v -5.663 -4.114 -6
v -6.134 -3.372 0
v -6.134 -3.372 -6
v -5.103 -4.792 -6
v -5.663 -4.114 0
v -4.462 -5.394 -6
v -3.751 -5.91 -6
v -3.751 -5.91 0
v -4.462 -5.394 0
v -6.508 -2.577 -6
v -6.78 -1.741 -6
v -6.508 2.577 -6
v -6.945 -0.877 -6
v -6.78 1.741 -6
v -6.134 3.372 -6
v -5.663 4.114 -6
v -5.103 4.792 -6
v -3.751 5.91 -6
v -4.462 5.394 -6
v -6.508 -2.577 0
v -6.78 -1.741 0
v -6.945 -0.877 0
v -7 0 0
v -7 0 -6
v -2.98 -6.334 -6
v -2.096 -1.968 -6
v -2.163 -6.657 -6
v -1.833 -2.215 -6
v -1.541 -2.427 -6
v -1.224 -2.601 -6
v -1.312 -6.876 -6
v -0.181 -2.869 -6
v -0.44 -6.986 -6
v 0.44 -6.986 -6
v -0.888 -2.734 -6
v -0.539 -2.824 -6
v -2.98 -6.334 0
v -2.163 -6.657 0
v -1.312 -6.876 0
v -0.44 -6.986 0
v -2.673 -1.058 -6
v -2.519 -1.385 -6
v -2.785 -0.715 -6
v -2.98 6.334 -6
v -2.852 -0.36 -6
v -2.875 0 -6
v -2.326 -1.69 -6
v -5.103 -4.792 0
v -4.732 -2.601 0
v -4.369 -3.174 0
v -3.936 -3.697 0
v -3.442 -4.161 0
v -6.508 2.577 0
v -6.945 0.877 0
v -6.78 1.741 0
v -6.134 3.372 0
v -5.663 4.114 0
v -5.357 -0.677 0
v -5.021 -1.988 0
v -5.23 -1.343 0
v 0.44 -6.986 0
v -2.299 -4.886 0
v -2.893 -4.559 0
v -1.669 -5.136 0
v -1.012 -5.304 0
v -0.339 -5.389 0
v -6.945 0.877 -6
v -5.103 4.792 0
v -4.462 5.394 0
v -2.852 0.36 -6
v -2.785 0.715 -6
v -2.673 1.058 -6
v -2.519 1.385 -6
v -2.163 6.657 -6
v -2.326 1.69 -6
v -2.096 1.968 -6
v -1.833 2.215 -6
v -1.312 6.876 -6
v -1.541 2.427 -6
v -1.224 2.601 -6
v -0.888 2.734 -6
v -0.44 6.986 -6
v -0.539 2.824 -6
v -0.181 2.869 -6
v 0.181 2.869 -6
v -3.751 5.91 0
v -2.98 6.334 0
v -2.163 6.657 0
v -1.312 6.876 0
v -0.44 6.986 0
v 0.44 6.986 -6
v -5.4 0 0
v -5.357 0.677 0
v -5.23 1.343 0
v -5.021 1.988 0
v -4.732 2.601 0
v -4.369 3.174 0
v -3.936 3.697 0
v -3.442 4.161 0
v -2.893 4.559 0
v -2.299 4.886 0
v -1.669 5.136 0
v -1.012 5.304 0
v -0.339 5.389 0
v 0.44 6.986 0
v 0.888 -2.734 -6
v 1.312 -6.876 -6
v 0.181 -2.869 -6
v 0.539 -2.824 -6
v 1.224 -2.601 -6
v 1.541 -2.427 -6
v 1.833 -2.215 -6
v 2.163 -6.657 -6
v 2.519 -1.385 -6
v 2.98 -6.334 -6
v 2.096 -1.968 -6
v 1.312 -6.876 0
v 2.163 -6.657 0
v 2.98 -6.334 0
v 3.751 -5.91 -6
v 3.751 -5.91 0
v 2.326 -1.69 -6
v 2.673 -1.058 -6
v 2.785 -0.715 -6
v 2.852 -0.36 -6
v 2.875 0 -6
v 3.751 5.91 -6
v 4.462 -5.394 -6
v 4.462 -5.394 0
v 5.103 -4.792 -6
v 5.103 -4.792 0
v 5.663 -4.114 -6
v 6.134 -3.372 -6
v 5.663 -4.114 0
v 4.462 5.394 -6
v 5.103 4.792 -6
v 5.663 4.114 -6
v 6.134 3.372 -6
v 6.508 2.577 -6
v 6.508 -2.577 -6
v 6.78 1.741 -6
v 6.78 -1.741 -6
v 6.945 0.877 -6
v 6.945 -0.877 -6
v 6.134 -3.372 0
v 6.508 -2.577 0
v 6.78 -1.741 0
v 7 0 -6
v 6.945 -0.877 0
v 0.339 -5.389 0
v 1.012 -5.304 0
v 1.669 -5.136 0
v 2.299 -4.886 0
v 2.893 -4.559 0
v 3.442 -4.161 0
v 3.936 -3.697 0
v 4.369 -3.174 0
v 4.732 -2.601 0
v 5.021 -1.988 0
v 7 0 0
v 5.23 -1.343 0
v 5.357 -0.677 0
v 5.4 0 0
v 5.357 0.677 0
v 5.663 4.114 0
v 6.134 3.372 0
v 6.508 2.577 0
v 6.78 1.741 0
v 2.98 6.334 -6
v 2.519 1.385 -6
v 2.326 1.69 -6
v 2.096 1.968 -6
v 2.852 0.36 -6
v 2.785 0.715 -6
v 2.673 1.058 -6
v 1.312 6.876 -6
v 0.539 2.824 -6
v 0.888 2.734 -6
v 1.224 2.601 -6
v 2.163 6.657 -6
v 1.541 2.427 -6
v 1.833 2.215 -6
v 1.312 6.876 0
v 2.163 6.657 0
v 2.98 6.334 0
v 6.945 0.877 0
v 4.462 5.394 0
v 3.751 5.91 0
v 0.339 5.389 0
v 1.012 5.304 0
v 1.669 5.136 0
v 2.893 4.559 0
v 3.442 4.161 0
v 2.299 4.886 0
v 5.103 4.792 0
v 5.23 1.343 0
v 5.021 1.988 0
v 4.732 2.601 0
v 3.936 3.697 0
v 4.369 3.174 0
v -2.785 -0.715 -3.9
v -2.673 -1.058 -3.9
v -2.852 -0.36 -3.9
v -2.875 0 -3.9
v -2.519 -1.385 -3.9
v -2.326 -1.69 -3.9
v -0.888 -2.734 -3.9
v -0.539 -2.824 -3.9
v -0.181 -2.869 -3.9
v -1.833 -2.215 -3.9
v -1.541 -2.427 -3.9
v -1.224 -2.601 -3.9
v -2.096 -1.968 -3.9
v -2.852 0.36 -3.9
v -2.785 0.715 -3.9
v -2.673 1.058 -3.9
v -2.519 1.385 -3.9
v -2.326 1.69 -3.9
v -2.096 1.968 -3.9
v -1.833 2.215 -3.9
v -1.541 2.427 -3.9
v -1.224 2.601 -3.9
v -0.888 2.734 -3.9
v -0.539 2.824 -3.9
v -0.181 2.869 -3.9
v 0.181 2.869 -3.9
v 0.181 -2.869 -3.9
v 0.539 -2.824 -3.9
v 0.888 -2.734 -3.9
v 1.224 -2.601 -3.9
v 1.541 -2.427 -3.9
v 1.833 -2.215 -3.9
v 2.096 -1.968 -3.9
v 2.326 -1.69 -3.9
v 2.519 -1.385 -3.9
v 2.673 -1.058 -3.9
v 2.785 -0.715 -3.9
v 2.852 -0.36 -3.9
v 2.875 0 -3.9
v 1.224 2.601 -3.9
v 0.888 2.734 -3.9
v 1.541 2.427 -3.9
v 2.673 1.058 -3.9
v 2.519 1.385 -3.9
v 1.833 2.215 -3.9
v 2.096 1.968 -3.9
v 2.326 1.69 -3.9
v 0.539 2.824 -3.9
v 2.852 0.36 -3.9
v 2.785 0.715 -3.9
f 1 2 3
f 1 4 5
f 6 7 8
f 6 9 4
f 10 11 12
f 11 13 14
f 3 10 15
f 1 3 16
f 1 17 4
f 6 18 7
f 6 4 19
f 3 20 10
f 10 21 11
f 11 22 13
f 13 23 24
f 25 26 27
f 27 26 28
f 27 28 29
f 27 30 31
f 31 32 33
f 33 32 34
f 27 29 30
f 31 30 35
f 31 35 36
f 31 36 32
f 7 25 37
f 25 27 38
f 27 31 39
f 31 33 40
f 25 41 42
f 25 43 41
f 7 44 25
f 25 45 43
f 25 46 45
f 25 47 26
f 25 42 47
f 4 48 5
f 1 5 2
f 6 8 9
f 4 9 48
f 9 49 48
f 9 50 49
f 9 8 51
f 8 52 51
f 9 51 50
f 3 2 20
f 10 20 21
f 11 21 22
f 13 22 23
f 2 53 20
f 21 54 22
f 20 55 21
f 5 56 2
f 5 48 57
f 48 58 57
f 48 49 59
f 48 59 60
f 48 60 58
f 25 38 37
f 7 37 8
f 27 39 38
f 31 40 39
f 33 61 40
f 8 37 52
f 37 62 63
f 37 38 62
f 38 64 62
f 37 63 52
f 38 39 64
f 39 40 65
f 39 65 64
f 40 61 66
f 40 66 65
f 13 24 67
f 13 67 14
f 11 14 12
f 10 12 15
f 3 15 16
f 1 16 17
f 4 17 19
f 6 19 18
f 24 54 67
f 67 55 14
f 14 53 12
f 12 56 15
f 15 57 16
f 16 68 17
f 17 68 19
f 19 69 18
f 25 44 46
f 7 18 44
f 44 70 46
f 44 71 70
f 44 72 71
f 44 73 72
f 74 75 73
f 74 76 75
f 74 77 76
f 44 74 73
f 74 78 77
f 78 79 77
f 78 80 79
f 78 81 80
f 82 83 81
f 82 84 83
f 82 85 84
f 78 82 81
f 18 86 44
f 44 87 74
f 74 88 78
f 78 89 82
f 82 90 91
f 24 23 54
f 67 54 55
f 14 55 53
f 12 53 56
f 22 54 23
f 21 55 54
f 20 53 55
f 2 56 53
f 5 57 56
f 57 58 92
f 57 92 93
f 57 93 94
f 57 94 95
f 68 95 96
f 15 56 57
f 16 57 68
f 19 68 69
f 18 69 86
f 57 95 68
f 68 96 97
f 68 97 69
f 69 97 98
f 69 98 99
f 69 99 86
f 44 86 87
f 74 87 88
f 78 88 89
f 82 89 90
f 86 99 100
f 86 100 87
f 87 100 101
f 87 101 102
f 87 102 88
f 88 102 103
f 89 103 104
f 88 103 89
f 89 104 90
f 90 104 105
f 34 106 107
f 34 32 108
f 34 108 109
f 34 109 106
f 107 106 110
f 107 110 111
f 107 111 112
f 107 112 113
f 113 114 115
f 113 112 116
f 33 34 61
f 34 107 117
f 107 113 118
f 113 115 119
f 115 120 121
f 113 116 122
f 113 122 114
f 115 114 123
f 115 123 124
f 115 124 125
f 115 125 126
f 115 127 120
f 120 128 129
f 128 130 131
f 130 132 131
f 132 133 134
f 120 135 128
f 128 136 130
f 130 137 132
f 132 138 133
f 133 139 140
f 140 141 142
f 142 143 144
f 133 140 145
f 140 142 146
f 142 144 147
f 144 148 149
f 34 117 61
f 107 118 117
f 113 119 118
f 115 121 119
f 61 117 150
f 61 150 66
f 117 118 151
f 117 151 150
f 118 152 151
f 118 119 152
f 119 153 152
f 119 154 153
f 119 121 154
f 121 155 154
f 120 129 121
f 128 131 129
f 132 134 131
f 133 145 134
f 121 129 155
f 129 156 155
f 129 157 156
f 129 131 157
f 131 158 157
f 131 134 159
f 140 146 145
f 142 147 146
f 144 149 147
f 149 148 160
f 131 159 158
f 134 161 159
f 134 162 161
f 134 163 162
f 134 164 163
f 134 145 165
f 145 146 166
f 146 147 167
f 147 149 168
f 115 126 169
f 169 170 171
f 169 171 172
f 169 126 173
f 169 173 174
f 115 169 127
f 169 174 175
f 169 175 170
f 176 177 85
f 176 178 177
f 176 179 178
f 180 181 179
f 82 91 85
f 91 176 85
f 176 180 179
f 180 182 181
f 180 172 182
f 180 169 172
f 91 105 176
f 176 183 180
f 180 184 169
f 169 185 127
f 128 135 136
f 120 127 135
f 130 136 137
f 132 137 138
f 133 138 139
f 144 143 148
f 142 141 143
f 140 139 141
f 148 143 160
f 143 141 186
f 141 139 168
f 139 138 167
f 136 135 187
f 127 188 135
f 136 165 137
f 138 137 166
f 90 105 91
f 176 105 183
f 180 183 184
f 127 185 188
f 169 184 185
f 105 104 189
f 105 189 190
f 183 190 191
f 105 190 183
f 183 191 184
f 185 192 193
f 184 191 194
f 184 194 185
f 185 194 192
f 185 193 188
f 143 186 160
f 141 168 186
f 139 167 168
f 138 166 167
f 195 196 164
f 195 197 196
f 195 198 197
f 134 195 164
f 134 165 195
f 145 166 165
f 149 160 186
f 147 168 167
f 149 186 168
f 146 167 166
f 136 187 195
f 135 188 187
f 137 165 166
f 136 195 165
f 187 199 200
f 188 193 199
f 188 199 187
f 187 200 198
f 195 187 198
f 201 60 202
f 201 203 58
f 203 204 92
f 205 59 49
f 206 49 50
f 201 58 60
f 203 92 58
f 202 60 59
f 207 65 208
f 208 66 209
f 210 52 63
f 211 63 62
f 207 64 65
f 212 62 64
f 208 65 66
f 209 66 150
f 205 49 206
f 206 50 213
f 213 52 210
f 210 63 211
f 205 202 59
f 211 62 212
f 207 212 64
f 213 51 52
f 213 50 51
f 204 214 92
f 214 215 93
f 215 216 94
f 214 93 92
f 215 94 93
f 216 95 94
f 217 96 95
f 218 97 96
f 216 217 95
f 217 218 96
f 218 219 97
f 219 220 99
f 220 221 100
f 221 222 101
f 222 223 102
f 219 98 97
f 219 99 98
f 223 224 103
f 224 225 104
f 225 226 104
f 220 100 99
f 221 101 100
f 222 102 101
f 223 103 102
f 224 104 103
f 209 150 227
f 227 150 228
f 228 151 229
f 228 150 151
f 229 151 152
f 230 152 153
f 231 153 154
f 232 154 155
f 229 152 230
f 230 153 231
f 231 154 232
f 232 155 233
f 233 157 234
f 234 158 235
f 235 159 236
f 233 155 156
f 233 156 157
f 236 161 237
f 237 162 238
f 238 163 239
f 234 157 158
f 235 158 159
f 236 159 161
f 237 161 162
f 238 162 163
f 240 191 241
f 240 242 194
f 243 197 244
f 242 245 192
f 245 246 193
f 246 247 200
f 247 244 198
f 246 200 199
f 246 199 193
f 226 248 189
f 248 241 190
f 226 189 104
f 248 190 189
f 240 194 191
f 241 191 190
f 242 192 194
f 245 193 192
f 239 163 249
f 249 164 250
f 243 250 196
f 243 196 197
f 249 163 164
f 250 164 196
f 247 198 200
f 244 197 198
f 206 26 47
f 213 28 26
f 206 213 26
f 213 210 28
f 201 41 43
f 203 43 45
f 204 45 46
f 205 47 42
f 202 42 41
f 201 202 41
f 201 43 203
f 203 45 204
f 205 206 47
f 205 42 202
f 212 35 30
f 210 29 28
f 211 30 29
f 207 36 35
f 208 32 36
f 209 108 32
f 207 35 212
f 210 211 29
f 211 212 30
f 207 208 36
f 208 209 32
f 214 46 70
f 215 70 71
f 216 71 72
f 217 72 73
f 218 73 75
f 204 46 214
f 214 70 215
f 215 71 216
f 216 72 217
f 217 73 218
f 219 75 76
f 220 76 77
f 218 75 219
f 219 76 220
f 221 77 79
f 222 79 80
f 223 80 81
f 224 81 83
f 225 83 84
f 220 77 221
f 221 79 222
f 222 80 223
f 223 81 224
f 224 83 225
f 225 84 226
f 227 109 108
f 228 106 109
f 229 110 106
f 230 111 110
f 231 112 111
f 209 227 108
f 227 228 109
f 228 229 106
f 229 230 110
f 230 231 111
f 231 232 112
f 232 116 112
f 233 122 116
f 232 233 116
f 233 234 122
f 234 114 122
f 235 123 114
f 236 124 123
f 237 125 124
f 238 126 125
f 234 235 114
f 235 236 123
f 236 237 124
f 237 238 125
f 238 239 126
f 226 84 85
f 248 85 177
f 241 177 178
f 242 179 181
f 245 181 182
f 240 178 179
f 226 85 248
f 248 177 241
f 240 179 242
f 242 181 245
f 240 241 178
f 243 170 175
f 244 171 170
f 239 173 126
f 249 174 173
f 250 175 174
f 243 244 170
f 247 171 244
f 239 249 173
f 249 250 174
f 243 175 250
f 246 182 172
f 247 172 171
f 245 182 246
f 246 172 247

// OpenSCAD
$fn = 50;

difference() {
	union() {
		translate(v = [0, 0, -6.0]) {
			cylinder(h = 6, r = 7.0);
		}
		#translate(v = [0, 0, -9.0]) {
			cylinder(h = 9, r = 2.875);
		}
	}
	union() {
		translate(v = [0, 0, 0]) {
			rotate(a = [0, 0, 0]) {
				difference() {
					union() {
						translate(v = [0, 0, -9.0]) {
							cylinder(h = 9, r = 2.6);
						}
						translate(v = [0, 0, -3.9]) {
							cylinder(h = 3.9, r1 = 2.875, r2 = 5.4);
						}
						translate(v = [0, 0, -9.0]) {
							cylinder(h = 9, r = 2.875);
						}
						translate(v = [0, 0, -9.0]) {
							cylinder(h = 9, r = 2.6);
						}
					}
					union();
				}
			}
		}
	}
}
